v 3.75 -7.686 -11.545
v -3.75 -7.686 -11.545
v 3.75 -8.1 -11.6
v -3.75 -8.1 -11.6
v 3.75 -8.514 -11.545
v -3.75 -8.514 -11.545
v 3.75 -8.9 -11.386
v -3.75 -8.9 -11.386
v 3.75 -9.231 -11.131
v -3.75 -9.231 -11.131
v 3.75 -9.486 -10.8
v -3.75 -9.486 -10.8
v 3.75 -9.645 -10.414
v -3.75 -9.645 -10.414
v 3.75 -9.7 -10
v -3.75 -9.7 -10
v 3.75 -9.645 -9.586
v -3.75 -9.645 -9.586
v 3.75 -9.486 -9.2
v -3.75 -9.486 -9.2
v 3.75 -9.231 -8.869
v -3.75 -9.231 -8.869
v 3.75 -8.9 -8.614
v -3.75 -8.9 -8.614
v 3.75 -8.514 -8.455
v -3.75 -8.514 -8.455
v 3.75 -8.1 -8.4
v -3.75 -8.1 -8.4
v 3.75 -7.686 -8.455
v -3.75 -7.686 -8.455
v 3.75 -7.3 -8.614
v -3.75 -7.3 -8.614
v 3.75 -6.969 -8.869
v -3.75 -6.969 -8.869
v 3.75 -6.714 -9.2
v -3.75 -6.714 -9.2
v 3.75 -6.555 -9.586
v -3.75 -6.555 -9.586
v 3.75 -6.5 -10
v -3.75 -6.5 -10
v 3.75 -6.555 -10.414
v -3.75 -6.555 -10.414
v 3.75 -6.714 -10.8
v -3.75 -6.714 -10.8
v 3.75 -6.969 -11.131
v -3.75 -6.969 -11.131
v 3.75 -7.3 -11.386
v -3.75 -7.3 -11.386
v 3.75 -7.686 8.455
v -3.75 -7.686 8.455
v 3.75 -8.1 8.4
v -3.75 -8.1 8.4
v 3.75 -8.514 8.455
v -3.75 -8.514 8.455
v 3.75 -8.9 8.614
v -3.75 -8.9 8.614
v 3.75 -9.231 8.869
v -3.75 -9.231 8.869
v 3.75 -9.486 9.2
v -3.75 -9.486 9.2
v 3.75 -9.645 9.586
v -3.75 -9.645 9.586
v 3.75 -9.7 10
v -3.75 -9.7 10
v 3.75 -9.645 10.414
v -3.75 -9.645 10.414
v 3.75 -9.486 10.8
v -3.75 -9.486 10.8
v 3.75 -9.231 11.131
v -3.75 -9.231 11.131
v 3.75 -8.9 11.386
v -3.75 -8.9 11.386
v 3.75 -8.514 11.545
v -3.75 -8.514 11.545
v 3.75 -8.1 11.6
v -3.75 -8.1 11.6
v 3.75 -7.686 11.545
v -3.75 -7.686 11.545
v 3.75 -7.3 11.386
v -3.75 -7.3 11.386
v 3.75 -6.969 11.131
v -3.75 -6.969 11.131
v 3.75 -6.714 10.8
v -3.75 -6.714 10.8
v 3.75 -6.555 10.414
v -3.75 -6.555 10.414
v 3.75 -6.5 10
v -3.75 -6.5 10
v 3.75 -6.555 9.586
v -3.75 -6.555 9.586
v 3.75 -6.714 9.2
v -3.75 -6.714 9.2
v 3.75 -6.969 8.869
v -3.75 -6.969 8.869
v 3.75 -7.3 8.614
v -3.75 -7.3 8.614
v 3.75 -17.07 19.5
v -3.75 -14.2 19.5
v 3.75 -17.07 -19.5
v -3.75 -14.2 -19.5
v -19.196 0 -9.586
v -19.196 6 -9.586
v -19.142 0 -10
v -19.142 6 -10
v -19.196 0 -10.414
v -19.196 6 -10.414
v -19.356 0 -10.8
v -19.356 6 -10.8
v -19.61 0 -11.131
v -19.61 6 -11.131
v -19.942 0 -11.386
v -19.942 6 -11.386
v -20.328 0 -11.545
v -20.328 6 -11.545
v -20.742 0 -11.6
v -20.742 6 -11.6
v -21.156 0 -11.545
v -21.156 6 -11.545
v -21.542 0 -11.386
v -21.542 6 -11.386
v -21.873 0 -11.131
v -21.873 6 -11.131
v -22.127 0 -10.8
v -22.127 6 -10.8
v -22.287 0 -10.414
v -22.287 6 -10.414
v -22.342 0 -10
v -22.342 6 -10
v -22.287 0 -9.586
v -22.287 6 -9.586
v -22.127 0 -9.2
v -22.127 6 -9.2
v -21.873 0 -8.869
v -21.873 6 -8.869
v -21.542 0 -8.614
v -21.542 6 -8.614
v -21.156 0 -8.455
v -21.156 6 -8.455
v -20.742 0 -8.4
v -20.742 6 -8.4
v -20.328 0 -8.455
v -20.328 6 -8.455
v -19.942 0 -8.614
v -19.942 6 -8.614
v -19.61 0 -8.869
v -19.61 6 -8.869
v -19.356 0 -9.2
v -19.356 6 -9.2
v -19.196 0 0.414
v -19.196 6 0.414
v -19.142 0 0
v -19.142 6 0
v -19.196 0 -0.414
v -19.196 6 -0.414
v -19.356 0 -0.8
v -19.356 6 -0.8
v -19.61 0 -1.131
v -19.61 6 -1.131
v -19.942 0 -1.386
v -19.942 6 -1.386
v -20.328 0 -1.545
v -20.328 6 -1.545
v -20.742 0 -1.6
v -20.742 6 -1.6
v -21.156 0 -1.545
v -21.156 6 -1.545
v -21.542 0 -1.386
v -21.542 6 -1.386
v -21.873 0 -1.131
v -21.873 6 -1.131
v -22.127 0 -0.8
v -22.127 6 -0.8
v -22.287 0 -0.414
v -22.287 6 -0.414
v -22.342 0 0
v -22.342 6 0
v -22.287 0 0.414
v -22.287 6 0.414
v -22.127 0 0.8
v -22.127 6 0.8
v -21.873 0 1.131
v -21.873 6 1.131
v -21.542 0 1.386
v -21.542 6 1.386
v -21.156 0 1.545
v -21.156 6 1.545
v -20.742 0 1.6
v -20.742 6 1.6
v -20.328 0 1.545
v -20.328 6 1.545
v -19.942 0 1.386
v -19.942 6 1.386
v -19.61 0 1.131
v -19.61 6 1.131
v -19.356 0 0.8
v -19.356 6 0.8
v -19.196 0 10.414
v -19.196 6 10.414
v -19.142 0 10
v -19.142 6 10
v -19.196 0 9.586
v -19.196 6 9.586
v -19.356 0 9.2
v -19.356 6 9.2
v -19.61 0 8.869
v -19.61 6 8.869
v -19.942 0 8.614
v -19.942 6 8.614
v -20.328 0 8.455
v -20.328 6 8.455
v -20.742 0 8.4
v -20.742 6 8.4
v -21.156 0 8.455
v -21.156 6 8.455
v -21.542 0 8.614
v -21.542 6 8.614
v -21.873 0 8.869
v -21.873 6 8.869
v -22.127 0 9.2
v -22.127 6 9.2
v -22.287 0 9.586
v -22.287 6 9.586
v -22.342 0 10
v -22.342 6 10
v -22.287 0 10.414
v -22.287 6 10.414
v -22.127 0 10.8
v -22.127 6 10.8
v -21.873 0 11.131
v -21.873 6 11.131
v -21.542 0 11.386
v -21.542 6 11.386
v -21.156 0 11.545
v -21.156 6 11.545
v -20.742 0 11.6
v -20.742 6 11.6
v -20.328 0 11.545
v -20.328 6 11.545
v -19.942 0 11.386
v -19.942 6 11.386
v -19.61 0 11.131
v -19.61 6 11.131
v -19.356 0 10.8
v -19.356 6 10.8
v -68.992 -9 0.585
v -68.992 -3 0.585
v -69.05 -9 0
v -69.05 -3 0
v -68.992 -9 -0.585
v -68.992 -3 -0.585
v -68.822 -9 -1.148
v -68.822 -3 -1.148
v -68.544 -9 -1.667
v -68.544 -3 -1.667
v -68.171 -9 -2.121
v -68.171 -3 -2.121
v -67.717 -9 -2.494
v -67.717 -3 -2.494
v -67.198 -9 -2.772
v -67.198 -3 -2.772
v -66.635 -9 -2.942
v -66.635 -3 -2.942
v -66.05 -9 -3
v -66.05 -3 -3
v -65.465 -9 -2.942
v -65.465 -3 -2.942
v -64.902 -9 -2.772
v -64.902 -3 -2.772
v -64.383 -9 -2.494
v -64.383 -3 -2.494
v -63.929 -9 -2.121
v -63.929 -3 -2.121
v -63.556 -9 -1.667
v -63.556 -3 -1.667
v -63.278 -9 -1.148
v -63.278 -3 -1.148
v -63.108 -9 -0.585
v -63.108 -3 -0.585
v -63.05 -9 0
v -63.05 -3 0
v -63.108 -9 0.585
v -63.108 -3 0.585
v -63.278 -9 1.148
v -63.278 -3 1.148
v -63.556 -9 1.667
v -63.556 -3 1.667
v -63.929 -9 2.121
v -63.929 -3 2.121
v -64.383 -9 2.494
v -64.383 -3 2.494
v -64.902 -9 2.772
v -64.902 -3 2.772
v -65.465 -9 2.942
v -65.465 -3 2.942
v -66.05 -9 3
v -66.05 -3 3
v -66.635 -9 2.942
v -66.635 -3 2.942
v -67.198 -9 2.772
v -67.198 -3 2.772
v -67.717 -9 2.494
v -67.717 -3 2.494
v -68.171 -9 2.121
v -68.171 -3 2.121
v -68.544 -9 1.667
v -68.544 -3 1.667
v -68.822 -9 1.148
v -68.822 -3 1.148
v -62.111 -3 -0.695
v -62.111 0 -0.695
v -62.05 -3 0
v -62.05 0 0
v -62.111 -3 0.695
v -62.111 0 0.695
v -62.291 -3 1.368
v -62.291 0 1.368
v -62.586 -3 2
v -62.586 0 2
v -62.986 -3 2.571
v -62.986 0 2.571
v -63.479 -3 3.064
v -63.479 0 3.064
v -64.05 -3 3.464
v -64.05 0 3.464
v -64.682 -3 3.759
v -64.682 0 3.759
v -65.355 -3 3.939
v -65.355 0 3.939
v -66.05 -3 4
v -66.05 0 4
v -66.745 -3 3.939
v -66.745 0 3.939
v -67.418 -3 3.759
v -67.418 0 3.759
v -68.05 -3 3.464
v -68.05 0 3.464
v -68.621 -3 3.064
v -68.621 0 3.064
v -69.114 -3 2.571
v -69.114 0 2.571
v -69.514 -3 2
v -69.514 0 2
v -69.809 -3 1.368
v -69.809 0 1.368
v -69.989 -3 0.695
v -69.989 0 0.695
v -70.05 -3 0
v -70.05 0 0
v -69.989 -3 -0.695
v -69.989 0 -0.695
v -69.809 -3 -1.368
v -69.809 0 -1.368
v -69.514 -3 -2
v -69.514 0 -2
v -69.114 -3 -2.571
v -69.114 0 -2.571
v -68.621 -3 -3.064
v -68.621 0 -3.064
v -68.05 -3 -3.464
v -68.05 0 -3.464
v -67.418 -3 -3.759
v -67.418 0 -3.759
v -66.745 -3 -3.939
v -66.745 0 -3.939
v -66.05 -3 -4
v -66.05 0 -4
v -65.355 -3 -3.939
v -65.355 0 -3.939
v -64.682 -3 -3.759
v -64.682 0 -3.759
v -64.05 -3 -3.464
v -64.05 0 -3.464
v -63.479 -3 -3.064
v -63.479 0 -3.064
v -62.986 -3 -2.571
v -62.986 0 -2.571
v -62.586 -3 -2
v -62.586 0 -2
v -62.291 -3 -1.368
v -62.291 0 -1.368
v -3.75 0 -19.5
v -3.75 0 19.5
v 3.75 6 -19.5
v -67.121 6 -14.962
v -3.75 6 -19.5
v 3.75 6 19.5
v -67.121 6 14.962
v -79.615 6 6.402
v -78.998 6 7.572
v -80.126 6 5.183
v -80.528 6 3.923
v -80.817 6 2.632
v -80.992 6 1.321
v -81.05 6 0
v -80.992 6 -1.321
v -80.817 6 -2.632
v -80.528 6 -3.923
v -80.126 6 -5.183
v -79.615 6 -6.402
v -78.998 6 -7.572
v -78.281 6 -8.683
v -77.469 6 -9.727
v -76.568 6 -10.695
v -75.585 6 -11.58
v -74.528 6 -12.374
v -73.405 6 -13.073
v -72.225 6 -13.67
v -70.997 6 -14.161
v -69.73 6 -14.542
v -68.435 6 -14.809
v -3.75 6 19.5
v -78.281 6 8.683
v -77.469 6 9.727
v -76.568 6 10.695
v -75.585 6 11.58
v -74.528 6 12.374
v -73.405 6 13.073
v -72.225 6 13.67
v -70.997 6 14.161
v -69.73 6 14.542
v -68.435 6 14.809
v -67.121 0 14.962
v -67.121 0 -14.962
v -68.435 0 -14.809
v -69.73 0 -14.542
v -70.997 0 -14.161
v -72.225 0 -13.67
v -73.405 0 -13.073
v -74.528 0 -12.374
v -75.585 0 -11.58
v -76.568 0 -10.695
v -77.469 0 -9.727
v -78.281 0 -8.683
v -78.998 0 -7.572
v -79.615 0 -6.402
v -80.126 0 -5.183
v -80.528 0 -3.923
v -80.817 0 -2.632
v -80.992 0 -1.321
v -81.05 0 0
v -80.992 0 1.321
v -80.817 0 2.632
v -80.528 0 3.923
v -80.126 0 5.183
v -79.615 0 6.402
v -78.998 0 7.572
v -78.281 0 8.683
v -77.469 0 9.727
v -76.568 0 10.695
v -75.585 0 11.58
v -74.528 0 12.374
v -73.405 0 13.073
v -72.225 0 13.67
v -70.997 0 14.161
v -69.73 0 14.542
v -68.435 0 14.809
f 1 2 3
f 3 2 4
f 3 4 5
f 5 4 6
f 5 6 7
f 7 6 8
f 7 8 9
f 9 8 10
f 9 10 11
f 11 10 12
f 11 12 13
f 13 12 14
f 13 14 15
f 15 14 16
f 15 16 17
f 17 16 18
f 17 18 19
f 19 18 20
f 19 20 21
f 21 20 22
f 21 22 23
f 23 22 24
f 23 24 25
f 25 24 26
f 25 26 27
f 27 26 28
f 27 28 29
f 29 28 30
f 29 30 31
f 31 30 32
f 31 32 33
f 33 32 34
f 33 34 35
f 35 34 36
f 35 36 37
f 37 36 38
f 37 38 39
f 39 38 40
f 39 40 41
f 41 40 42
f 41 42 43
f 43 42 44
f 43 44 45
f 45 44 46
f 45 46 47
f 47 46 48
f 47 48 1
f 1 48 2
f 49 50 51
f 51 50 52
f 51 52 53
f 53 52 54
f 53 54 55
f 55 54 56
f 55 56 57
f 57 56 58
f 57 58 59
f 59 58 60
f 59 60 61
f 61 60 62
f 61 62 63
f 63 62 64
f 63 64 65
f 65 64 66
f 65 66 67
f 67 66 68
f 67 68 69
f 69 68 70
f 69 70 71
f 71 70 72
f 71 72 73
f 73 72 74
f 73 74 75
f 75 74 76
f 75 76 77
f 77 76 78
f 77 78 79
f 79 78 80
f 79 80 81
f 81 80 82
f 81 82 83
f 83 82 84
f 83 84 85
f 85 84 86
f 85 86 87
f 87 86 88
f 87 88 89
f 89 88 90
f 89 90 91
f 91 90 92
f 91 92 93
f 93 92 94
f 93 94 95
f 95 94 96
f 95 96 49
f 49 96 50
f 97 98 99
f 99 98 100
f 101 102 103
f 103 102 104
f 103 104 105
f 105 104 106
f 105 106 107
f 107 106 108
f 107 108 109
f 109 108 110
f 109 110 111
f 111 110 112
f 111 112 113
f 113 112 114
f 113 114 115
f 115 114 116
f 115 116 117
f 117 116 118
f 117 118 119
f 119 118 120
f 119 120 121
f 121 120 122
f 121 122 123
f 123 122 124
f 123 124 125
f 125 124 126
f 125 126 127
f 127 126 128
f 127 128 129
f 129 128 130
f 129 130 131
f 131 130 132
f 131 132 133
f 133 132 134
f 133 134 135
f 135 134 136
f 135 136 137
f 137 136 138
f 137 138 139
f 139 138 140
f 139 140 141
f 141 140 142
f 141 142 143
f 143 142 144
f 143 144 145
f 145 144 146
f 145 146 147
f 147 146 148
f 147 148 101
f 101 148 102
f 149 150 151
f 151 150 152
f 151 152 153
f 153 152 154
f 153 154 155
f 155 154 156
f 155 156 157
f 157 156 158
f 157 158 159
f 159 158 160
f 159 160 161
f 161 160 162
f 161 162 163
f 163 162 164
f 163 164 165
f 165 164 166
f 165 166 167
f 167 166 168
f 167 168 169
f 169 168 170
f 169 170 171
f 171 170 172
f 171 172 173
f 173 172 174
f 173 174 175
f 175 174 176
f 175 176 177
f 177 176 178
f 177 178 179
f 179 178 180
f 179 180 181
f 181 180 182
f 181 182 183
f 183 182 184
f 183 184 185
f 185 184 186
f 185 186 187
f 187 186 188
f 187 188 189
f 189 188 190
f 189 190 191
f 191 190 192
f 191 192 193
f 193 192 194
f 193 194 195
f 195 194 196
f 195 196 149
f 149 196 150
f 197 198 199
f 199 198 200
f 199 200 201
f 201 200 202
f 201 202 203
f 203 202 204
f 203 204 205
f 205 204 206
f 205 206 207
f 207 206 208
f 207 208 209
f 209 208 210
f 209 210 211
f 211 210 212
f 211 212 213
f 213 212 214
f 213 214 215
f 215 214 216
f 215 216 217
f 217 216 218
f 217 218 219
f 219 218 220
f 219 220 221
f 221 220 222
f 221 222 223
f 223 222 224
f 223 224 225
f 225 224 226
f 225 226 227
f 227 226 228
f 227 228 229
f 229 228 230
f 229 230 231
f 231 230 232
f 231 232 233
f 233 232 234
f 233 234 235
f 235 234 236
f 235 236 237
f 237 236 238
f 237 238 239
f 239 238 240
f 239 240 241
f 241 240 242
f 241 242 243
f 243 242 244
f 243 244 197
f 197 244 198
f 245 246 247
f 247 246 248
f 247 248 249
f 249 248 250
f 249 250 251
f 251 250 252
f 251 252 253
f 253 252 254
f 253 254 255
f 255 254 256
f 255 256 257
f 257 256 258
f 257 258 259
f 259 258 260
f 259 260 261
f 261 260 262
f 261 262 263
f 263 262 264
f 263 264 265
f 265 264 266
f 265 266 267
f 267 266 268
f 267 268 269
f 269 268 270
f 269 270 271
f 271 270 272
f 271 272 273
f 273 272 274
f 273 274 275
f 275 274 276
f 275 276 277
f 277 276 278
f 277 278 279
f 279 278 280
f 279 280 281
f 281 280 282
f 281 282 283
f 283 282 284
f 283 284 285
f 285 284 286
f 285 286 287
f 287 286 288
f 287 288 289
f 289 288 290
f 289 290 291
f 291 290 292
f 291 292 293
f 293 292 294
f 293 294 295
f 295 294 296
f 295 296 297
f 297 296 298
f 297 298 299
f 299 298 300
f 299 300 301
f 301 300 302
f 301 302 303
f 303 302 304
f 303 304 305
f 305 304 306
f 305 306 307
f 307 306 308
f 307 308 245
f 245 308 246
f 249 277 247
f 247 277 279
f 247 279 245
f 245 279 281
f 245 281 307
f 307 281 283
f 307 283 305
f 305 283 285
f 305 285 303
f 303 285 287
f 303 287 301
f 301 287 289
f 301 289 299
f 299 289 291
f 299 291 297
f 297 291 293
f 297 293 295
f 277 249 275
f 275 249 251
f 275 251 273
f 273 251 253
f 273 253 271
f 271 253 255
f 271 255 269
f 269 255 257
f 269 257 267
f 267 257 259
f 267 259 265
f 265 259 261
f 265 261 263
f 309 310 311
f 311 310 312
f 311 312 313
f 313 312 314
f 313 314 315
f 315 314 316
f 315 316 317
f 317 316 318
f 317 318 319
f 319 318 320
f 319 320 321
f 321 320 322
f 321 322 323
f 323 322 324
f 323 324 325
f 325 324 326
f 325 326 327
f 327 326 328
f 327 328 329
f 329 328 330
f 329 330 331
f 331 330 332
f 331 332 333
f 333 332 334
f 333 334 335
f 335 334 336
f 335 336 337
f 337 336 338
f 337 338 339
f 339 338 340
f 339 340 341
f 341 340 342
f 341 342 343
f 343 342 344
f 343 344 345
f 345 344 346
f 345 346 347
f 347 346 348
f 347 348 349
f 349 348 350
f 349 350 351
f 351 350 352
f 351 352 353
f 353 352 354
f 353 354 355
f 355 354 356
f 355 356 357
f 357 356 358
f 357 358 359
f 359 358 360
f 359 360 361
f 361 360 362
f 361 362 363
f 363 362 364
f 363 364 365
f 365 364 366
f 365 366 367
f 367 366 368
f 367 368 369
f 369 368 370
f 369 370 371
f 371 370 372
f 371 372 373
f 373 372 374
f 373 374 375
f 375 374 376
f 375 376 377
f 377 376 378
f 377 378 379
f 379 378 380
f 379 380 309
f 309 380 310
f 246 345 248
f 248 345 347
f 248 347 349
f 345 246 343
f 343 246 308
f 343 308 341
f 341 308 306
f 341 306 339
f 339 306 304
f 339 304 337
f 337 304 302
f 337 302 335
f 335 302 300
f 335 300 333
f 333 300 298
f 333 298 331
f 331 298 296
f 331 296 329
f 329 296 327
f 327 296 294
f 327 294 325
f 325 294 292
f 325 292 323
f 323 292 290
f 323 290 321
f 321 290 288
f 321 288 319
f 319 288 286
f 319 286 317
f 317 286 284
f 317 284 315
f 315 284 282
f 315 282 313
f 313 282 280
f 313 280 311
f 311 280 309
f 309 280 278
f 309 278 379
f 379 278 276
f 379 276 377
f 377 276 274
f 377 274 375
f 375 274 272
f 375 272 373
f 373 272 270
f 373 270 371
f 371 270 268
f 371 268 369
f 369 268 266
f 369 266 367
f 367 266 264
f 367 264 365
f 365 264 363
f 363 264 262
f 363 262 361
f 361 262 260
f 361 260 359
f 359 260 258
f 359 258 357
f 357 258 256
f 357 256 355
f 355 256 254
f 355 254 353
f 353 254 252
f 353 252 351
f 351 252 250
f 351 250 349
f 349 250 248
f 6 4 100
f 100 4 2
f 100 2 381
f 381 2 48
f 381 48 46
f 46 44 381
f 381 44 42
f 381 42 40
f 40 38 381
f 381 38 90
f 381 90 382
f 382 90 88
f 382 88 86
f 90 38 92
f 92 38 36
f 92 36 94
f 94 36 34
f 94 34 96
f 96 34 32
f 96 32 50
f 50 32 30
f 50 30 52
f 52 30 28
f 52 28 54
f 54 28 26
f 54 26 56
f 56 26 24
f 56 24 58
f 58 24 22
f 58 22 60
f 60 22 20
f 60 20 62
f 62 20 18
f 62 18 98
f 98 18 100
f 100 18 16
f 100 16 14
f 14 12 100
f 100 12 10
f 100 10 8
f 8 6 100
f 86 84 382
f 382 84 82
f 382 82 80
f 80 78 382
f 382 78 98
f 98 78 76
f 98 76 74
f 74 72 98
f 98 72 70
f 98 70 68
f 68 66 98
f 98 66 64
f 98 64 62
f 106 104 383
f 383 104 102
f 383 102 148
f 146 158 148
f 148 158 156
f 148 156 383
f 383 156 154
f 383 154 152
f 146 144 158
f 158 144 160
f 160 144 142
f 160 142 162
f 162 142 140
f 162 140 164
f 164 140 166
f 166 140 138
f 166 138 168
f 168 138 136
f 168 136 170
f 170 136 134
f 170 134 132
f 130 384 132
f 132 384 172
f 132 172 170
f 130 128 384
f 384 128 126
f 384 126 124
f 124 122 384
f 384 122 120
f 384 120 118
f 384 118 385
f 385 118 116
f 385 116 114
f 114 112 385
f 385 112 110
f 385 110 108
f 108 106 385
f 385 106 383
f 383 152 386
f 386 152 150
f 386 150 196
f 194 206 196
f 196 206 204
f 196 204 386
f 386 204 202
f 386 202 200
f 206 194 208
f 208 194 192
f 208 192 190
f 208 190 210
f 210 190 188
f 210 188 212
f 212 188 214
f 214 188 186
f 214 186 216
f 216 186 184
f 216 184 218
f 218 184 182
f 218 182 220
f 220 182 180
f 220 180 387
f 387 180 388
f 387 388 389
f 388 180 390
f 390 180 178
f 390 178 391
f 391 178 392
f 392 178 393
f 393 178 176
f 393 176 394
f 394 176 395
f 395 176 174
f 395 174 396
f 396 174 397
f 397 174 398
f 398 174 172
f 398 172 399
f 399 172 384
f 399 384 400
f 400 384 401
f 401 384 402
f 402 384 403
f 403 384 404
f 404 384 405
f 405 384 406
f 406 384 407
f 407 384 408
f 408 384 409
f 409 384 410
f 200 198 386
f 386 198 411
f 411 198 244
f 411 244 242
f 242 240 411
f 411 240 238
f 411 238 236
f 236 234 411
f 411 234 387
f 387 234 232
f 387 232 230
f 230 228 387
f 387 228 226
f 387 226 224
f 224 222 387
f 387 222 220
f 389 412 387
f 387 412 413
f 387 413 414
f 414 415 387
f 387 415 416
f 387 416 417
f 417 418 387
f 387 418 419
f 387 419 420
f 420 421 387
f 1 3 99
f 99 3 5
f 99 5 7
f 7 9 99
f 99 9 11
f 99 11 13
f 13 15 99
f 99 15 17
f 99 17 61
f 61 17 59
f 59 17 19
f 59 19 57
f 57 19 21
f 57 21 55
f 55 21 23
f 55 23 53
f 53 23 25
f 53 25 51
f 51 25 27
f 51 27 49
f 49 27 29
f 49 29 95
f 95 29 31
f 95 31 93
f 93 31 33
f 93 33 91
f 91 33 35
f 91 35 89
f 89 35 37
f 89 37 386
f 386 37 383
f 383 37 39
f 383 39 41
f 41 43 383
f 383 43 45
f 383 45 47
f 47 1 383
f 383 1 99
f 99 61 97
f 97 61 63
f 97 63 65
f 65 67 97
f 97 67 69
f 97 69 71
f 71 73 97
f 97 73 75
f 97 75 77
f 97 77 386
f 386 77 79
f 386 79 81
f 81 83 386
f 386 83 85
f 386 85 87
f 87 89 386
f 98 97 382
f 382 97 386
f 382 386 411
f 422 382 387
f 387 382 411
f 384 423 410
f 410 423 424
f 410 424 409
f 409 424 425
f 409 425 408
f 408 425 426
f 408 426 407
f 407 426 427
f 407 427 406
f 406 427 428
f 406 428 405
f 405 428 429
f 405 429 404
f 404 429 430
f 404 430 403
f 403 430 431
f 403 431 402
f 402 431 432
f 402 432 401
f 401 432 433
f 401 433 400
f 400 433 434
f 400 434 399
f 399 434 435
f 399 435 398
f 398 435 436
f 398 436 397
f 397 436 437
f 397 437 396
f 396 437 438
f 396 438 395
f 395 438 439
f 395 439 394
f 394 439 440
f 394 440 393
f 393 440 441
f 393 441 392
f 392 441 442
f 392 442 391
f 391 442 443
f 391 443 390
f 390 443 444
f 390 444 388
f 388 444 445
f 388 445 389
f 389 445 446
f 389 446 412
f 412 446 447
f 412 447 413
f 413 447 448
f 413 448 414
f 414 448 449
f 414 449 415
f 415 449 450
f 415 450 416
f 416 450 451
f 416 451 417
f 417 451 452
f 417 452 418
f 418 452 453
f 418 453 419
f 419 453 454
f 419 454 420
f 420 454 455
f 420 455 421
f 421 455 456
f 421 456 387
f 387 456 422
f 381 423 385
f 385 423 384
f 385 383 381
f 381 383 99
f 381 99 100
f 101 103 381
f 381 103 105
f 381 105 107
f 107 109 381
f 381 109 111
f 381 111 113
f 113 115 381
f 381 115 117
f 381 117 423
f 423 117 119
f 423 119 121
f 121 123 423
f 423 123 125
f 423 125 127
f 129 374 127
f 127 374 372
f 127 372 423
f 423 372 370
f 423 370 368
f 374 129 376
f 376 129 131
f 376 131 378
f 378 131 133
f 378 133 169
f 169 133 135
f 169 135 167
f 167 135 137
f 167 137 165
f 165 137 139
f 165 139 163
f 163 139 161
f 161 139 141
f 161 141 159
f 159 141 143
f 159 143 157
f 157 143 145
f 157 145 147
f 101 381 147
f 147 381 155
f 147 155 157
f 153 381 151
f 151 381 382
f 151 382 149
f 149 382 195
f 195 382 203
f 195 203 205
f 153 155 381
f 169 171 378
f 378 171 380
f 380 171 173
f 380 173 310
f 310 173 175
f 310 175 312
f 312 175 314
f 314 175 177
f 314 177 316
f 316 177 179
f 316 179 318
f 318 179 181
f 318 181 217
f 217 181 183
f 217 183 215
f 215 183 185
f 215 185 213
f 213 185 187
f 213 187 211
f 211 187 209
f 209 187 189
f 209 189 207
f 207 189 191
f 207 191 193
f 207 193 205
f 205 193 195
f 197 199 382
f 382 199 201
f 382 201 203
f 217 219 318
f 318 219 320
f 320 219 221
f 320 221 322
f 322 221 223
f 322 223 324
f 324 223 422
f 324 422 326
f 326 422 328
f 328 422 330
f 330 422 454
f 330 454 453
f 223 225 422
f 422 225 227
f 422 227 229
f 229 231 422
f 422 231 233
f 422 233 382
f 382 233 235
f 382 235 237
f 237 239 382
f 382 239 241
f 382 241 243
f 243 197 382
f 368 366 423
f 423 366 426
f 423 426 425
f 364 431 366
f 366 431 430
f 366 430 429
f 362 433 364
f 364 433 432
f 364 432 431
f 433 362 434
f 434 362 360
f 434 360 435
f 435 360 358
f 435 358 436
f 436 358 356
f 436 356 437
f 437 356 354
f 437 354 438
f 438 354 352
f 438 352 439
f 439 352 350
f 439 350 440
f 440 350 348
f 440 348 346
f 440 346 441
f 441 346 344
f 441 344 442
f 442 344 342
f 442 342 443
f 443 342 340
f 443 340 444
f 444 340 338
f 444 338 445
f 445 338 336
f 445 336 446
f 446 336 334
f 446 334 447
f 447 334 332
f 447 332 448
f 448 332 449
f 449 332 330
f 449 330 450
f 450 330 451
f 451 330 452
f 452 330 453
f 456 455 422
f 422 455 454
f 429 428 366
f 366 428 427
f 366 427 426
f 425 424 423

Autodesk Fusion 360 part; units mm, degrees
sketch "Sketch1" plane through (0, 0, 0) normal (0, 1, 0) x (1, 0, 0)
  line L0 (-3.75, 19.5) -> (3.75, 19.5)
  line L1 (3.75, 19.5) -> (3.75, -19.5)
  line L2 (3.75, -19.5) -> (-3.75, -19.5)
  line L3 (-3.75, -19.5) -> (-3.75, 19.5)
  line L4 (-3.75, 19.5) -> (3.75, -19.5) construction
  line L5 (3.75, 19.5) -> (-3.75, -19.5) construction
  circle A0 centre (-66.05, 0) radius 15
  line L6 (-3.75, -19.5) -> (-67.1215, -14.9617)
  line L7 (-3.75, 19.5) -> (-67.1215, 14.9617)
  dimension "d1" = 7.5
  dimension "d2" = 39
  dimension "d4" = 30
extrude "Extrude1" add sketch "Sketch1" along normal blind 6
sketch "Sketch2" plane through (0, 6, 0) normal (0, 1, 0) x (-1, 0, 0)
  line L0 (-3.75, -19.5) -> (3.75, -19.5)
  line L1 (3.75, -19.5) -> (67.1215, -14.9617)
  arc A0 (67.1215, -14.9617) -> (67.1215, 14.9617) centre (66.05, 0) ccw
  line L2 (67.1215, 14.9617) -> (3.75, 19.5)
  line L3 (3.75, 19.5) -> (-3.75, 19.5)
  line L4 (-3.75, 19.5) -> (-3.75, -19.5)
  line L5 (-3.75, 19.5) -> (3.75, 19.5)
  line L6 (3.75, 19.5) -> (3.75, -19.5)
  line L7 (3.75, -19.5) -> (-3.75, -19.5)
  line L8 (-3.75, -19.5) -> (-3.75, 19.5)
  line L9 (-3.75, 19.5) -> (3.75, -19.5) construction
  line L10 (3.75, 19.5) -> (-3.75, -19.5) construction
  dimension "d7" = 7.5
  dimension "d8" = 39
extrude "Extrude2" add sketch "Sketch2" against normal blind 20.2 contours L0 L3 L4 L5 L6 L7 L8
sketch "Sketch3" plane through (0, 6, 0) normal (0, 1, 0) x (-1, 0, 0)
  line L0 (3.75, -19.5) -> (67.1215, -14.9617)
  arc A0 (67.1215, -14.9617) -> (67.1215, 14.9617) centre (66.05, 0) ccw
  line L1 (67.1215, 14.9617) -> (3.75, 19.5)
  line L2 (3.75, 19.5) -> (-3.75, 19.5)
  line L3 (-3.75, 19.5) -> (-3.75, -19.5)
  line L4 (-3.75, -19.5) -> (3.75, -19.5)
  circle A1 centre (66.05, 0) radius 4
  dimension "d11" = 8
extrude "Extrude3" add sketch "Sketch3" against normal blind 9 contours A1
sketch "Sketch4" plane through (0, -3, 0) normal (0, -1, 0) x (1, 0, 0)
  circle A0 centre (-66.05, 0) radius 4
  circle A1 centre (-66.05, 0) radius 3
  dimension "d14" = 6
extrude "Extrude4" add sketch "Sketch4" along normal blind 6 contours A1
sketch "Sketch5" plane through (0, 6, 0) normal (0, 1, 0) x (-1, 0, 0)
  line L0 (3.75, -19.5) -> (67.1215, -14.9617)
  arc A0 (67.1215, -14.9617) -> (67.1215, 14.9617) centre (66.05, 0) ccw
  line L1 (67.1215, 14.9617) -> (3.75, 19.5)
  line L2 (3.75, 19.5) -> (-3.75, 19.5)
  line L3 (-3.75, 19.5) -> (-3.75, -19.5)
  line L4 (-3.75, -19.5) -> (3.75, -19.5)
  line L5 (3.75, -19.5) -> (23.6989, -18.0714)
  line L6 (3.75, 19.5) -> (23.6989, 18.0714)
  line L7 (23.6989, 18.0714) -> (23.6989, -18.0714)
  line L8 (23.6989, -18.0714) -> (17.7142, -18.5)
  line L9 (23.6989, 18.0714) -> (17.7142, 18.5)
  line L10 (17.7142, 18.5) -> (17.7142, -18.5)
  line L11 (17.7142, -18.5) -> (23.6989, 18.0714)
  line L12 (23.6989, -18.0714) -> (17.7142, 18.5)
  line L13 (17.7142, 0) -> (23.6989, 0)
  circle A1 centre (20.7416, 0) radius 1.6
  line L14 (20.7416, 0) -> (20.7416, 10)
  circle A2 centre (20.7416, 10) radius 1.6
  line L15 (20.7416, 0) -> (20.7416, -10)
  circle A3 centre (20.7416, -10) radius 1.6
  dimension "d17" = 20
  dimension "d18" = 20
  dimension "d19" = 6
  dimension "d20" = 6
  dimension "d21" = 3.2
  dimension "d22" = 10
  dimension "d23" = 3.2
  dimension "d24" = 10
  dimension "d25" = 3.2
extrude "Extrude5" cut sketch "Sketch5" against normal blind 13 contours A3 | L11 L13 A1 | L11 A1 L15 | L12 A1 L15 | L12 L13 A1 | A2 | L12 L13 A1 | L11 A1 L14 | L11 L13 A1 | L12 A1 L14
sketch "Sketch6" plane through (0, 0, 19.5) normal (0, 0, 1) x (1, 0, 0)
  line L0 (3.75, -14.2) -> (3.75, 6)
  line L1 (3.75, 6) -> (-3.75, 6)
  line L2 (-3.75, 6) -> (-3.75, 0)
  line L3 (-3.75, 0) -> (-3.75, -14.2)
  line L4 (-3.75, -14.2) -> (3.75, -14.2)
  line L5 (3.75, -14.2) -> (3.75, -17.07)
  line L6 (3.75, -17.07) -> (-3.75, -14.2)
  dimension "d28" = 2.87
extrude "Extrude6" add sketch "Sketch6" against normal blind 39 contours L4 L5 L6
sketch "Sketch7" plane through (-3.75, 0, 0) normal (-1, 0, 0) x (0, 0, 1)
  line L0 (19.5, 0) -> (-19.5, 0)
  line L1 (-19.5, 0) -> (-19.5, -14.2)
  line L2 (-19.5, -14.2) -> (19.5, -14.2)
  line L3 (19.5, -14.2) -> (19.5, 0)
  line L4 (-19.5, -14.2) -> (-10, -14.2)
  line L5 (-10, -14.2) -> (-10, -8.1)
  line L6 (-10, -8.1) -> (10, -8.1)
  circle A0 centre (-10, -8.1) radius 1.6
  circle A1 centre (10, -8.1) radius 1.6
  dimension "d31" = 9.5
  dimension "d32" = 6.1
  dimension "d33" = 20
  dimension "d34" = 3.2
  dimension "d35" = 3.2
extrude "Extrude7" cut sketch "Sketch7" against normal blind 61 contours A1 | L5 L6 A0 | L5 L6 A0
